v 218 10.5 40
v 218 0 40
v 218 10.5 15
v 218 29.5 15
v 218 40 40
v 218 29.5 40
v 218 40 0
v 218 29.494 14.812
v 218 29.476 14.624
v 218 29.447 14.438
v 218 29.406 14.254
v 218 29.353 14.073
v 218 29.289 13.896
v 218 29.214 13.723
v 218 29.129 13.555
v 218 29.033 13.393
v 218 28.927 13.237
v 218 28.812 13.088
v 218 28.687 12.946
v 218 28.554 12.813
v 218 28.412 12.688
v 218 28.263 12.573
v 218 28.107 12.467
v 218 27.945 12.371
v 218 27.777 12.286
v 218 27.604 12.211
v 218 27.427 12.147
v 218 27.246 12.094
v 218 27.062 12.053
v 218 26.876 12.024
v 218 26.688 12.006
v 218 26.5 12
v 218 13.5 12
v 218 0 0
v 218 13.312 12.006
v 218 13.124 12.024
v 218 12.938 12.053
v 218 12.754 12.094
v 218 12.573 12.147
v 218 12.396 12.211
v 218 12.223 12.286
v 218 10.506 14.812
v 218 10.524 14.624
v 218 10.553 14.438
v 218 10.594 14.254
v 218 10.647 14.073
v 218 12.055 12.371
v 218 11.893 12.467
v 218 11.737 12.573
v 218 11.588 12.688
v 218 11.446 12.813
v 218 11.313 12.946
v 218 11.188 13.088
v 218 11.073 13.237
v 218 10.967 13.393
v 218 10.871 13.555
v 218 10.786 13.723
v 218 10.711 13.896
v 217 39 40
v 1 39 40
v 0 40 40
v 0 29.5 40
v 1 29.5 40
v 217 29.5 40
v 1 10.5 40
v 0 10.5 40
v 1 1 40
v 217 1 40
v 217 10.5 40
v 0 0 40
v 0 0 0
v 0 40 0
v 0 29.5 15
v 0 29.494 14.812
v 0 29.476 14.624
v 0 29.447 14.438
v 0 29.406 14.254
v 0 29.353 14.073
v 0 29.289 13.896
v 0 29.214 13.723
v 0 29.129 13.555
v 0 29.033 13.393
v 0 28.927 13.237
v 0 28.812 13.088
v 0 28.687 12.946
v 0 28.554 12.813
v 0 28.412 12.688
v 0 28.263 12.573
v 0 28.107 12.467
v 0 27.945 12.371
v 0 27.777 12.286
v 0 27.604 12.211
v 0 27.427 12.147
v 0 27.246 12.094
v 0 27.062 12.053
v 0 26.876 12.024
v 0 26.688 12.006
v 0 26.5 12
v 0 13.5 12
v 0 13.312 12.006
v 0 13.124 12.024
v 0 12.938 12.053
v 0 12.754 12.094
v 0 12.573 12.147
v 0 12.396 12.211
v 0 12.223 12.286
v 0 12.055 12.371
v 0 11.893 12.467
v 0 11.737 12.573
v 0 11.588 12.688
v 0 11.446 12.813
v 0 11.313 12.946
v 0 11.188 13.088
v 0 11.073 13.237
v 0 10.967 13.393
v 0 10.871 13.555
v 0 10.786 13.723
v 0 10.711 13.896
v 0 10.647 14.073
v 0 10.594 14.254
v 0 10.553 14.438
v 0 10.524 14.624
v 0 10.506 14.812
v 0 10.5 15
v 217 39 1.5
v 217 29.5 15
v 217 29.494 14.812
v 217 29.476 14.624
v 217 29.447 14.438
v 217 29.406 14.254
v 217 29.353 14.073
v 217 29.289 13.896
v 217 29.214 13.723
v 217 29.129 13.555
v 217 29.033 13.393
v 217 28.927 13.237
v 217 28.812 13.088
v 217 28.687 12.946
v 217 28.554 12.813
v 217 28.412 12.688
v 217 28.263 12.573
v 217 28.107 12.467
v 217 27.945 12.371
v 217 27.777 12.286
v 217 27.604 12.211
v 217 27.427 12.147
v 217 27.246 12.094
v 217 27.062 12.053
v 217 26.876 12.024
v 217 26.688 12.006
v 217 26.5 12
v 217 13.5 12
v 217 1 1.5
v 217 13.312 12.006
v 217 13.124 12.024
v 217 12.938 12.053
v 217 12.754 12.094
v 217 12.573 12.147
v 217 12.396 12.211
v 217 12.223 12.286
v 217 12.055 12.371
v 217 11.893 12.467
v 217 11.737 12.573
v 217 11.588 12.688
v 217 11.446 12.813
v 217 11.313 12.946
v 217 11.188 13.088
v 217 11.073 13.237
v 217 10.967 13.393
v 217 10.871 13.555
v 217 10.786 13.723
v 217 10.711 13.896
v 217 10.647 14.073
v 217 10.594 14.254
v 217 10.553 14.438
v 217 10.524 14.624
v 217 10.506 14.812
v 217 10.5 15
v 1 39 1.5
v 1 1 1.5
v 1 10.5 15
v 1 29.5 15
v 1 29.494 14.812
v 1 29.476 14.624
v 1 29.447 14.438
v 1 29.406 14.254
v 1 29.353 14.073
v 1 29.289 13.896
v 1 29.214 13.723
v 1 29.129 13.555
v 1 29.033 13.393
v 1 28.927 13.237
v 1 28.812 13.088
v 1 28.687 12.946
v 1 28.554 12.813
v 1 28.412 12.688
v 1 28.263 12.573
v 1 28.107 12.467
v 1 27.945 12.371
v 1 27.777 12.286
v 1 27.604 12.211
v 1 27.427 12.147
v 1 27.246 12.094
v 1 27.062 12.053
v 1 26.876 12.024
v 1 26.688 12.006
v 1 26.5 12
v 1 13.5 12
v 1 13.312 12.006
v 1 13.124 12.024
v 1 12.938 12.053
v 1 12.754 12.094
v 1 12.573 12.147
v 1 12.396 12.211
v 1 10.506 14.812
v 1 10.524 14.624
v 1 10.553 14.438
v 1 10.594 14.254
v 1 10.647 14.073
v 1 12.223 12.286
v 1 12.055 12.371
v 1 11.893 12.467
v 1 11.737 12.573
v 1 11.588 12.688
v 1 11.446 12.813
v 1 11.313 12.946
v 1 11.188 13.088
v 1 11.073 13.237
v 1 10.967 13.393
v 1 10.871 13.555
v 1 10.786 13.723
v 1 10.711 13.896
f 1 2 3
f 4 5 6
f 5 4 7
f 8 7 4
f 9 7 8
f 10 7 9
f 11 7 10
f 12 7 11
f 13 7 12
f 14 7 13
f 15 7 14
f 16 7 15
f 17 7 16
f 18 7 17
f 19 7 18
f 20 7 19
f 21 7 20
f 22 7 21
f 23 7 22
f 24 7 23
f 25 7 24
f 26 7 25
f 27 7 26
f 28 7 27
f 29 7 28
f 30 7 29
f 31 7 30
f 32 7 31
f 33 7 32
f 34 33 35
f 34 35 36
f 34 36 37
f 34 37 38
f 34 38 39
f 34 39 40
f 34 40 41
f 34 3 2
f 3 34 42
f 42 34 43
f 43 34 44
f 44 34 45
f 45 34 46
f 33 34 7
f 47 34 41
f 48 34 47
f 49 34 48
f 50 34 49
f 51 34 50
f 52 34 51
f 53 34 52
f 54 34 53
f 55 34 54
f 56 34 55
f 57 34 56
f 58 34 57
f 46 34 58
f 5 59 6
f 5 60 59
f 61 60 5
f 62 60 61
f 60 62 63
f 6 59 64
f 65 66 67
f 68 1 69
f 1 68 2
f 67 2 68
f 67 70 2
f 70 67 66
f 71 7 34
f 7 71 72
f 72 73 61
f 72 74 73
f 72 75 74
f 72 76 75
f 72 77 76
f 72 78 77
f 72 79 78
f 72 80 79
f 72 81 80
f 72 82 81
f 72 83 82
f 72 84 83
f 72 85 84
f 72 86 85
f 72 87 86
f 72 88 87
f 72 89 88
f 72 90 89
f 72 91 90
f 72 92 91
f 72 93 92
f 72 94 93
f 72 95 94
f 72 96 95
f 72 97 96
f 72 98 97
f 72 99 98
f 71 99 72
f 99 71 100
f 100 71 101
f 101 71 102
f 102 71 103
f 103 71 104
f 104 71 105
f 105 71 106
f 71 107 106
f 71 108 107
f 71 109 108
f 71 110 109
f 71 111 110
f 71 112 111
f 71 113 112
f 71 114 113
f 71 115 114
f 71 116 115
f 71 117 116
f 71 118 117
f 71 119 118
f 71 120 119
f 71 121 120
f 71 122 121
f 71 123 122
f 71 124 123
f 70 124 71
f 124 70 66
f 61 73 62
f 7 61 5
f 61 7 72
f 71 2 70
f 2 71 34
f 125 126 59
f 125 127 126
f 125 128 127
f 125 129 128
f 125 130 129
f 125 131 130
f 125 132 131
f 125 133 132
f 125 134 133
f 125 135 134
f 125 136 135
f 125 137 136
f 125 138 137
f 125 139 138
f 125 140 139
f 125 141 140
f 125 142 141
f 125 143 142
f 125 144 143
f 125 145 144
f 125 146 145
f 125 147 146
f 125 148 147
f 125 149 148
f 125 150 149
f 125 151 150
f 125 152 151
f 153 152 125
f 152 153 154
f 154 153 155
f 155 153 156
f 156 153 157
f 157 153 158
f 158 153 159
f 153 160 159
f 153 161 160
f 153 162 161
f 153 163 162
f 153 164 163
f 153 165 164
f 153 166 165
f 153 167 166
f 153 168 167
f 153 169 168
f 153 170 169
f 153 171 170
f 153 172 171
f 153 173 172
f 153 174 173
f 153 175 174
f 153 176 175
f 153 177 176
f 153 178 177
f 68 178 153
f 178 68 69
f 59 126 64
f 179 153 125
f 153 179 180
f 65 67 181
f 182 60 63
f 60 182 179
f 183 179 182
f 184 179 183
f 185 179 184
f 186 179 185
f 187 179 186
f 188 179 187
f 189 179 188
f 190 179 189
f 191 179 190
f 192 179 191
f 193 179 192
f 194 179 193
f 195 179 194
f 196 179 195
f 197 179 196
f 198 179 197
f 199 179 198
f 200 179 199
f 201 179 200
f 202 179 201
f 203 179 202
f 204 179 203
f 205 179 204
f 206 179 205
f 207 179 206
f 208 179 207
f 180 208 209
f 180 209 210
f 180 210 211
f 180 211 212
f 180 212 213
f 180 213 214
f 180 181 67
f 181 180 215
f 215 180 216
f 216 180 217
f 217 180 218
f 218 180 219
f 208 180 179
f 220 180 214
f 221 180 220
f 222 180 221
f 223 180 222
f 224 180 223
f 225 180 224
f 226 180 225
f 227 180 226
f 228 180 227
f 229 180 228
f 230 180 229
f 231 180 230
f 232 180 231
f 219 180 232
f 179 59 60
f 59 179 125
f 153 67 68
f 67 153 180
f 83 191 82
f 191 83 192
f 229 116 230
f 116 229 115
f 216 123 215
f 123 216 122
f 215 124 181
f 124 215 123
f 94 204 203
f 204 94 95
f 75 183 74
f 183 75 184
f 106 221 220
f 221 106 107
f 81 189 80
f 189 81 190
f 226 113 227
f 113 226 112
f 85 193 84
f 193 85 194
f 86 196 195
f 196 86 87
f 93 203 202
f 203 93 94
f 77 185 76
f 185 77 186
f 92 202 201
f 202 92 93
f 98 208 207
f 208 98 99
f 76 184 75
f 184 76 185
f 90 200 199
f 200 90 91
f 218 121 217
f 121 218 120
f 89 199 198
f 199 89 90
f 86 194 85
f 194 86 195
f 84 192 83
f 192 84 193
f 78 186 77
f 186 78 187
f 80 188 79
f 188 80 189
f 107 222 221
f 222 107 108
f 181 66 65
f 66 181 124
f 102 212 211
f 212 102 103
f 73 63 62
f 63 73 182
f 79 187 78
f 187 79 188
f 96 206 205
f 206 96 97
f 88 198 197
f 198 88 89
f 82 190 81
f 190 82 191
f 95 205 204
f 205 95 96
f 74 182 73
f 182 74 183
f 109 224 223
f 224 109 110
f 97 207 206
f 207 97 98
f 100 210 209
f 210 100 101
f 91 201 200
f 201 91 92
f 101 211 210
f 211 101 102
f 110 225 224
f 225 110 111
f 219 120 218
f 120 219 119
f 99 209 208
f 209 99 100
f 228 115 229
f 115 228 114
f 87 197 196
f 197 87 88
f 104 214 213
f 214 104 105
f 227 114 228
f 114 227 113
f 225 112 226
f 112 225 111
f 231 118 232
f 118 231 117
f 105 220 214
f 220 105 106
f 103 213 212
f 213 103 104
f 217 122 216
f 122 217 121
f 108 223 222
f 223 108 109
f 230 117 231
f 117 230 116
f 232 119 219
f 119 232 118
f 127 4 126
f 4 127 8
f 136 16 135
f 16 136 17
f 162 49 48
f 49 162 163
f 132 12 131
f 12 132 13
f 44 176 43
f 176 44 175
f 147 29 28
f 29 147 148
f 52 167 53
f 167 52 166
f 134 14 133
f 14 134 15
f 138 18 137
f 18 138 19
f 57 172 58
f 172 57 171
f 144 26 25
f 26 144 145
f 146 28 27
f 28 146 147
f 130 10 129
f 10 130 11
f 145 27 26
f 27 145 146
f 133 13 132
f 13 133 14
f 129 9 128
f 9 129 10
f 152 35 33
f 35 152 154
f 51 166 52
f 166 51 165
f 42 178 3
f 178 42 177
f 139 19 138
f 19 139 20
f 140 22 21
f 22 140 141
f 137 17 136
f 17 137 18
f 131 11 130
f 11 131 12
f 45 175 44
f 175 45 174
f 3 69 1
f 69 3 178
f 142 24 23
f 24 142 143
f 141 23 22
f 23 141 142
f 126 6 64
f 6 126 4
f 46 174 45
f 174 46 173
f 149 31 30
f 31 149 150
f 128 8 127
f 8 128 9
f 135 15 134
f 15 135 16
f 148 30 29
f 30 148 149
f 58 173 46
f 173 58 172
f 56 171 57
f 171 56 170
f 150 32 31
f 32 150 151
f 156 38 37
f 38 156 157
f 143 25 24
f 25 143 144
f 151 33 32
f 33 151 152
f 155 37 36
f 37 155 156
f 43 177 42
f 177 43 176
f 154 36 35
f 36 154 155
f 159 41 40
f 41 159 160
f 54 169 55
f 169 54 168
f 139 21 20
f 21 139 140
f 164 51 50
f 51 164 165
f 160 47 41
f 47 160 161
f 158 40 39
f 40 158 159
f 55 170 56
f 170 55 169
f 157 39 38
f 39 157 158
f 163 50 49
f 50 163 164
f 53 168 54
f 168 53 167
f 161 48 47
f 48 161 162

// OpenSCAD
include <boardgame_insert_toolkit_lib.2.scad>;

// determines whether lids are output.
g_b_print_lid = true;

// determines whether boxes are output.
g_b_print_box = true; 

// Focus on one box
g_isolated_print_box = ""; 

// Used to visualize how all of the boxes fit together. 
g_b_visualization = false;          
        
// this is the outer wall thickness. 
//Default = 1.5mm
g_wall_thickness = 1.5;

// The tolerance value is extra space put between planes of the lid and box that fit together.
// Increase the tolerance to loosen the fit and decrease it to tighten it.
//
// Note that the tolerance is applied exclusively to the lid.
// So if the lid is too tight or too loose, change this value ( up for looser fit, down for tighter fit ) and 
// you only need to reprint the lid.
// 
// The exception is the stackable box, where the bottom of the box is the lid of the box below,
// in which case the tolerance also affects that box bottom.
//
g_tolerance = 0.15;

// This adjusts the position of the lid detents downward. 
// The larger the value, the bigger the gap between the lid and the box.
g_tolerance_detents_pos = 0.1;

aw_wall_thickness = 1.0;
aw_size_x = 218.0;
aw_size_y = 40.0;
aw_size_z = 40.0;

aw_moor_tiles_size_x = 110;
aw_clay_tiles_size_x = 53;
aw_beggar_tiles_size_x = 53;

data =
  [
    [
      "simple box",
      [
        [ BOX_SIZE_XYZ, [aw_size_x, aw_size_y, aw_size_z] ],
        [ BOX_NO_LID_B, t],
        [
          BOX_COMPONENT,
          [
            [
              CMP_COMPARTMENT_SIZE_XYZ,
              [
                aw_size_x - 2 * aw_wall_thickness,
                aw_size_y - 2 * aw_wall_thickness,
                aw_size_z - aw_wall_thickness
              ]
            ],
            [ CMP_CUTOUT_SIDES_4B, [ f, f, t, t ] ],
            [ CMP_CUTOUT_HEIGHT_PCT, 60 ],
            [ CMP_CUTOUT_DEPTH_PCT, 0 ],
          ]
        ],
        /*
        // moor tiles
        [
          BOX_COMPONENT,
          [
            [CMP_COMPARTMENT_SIZE_XYZ, [71.8, 48.2, 58.4]],
            [CMP_NUM_COMPARTMENTS_XY, [1, 1]],
            [POSITION_XY, [CENTER, 0]]
          ]
        ],
        // clay/stone room tiles
        [
          BOX_COMPONENT,
          [
            [CMP_COMPARTMENT_SIZE_XYZ, [71.8, 100, 58.4]],
            [CMP_NUM_COMPARTMENTS_XY, [1, 1]],
            [POSITION_XY, [CENTER, MAX]]
          ]
        ],
        // beggar -3 tiles
        [
          BOX_COMPONENT,
          [
            [CMP_COMPARTMENT_SIZE_XYZ, [71.8, 100, 58.4]],
            [CMP_NUM_COMPARTMENTS_XY, [1, 1]],
            [POSITION_XY, [CENTER, MAX]]
          ]
        ],
        */
      ]
    ]
  ];

MakeAll();
